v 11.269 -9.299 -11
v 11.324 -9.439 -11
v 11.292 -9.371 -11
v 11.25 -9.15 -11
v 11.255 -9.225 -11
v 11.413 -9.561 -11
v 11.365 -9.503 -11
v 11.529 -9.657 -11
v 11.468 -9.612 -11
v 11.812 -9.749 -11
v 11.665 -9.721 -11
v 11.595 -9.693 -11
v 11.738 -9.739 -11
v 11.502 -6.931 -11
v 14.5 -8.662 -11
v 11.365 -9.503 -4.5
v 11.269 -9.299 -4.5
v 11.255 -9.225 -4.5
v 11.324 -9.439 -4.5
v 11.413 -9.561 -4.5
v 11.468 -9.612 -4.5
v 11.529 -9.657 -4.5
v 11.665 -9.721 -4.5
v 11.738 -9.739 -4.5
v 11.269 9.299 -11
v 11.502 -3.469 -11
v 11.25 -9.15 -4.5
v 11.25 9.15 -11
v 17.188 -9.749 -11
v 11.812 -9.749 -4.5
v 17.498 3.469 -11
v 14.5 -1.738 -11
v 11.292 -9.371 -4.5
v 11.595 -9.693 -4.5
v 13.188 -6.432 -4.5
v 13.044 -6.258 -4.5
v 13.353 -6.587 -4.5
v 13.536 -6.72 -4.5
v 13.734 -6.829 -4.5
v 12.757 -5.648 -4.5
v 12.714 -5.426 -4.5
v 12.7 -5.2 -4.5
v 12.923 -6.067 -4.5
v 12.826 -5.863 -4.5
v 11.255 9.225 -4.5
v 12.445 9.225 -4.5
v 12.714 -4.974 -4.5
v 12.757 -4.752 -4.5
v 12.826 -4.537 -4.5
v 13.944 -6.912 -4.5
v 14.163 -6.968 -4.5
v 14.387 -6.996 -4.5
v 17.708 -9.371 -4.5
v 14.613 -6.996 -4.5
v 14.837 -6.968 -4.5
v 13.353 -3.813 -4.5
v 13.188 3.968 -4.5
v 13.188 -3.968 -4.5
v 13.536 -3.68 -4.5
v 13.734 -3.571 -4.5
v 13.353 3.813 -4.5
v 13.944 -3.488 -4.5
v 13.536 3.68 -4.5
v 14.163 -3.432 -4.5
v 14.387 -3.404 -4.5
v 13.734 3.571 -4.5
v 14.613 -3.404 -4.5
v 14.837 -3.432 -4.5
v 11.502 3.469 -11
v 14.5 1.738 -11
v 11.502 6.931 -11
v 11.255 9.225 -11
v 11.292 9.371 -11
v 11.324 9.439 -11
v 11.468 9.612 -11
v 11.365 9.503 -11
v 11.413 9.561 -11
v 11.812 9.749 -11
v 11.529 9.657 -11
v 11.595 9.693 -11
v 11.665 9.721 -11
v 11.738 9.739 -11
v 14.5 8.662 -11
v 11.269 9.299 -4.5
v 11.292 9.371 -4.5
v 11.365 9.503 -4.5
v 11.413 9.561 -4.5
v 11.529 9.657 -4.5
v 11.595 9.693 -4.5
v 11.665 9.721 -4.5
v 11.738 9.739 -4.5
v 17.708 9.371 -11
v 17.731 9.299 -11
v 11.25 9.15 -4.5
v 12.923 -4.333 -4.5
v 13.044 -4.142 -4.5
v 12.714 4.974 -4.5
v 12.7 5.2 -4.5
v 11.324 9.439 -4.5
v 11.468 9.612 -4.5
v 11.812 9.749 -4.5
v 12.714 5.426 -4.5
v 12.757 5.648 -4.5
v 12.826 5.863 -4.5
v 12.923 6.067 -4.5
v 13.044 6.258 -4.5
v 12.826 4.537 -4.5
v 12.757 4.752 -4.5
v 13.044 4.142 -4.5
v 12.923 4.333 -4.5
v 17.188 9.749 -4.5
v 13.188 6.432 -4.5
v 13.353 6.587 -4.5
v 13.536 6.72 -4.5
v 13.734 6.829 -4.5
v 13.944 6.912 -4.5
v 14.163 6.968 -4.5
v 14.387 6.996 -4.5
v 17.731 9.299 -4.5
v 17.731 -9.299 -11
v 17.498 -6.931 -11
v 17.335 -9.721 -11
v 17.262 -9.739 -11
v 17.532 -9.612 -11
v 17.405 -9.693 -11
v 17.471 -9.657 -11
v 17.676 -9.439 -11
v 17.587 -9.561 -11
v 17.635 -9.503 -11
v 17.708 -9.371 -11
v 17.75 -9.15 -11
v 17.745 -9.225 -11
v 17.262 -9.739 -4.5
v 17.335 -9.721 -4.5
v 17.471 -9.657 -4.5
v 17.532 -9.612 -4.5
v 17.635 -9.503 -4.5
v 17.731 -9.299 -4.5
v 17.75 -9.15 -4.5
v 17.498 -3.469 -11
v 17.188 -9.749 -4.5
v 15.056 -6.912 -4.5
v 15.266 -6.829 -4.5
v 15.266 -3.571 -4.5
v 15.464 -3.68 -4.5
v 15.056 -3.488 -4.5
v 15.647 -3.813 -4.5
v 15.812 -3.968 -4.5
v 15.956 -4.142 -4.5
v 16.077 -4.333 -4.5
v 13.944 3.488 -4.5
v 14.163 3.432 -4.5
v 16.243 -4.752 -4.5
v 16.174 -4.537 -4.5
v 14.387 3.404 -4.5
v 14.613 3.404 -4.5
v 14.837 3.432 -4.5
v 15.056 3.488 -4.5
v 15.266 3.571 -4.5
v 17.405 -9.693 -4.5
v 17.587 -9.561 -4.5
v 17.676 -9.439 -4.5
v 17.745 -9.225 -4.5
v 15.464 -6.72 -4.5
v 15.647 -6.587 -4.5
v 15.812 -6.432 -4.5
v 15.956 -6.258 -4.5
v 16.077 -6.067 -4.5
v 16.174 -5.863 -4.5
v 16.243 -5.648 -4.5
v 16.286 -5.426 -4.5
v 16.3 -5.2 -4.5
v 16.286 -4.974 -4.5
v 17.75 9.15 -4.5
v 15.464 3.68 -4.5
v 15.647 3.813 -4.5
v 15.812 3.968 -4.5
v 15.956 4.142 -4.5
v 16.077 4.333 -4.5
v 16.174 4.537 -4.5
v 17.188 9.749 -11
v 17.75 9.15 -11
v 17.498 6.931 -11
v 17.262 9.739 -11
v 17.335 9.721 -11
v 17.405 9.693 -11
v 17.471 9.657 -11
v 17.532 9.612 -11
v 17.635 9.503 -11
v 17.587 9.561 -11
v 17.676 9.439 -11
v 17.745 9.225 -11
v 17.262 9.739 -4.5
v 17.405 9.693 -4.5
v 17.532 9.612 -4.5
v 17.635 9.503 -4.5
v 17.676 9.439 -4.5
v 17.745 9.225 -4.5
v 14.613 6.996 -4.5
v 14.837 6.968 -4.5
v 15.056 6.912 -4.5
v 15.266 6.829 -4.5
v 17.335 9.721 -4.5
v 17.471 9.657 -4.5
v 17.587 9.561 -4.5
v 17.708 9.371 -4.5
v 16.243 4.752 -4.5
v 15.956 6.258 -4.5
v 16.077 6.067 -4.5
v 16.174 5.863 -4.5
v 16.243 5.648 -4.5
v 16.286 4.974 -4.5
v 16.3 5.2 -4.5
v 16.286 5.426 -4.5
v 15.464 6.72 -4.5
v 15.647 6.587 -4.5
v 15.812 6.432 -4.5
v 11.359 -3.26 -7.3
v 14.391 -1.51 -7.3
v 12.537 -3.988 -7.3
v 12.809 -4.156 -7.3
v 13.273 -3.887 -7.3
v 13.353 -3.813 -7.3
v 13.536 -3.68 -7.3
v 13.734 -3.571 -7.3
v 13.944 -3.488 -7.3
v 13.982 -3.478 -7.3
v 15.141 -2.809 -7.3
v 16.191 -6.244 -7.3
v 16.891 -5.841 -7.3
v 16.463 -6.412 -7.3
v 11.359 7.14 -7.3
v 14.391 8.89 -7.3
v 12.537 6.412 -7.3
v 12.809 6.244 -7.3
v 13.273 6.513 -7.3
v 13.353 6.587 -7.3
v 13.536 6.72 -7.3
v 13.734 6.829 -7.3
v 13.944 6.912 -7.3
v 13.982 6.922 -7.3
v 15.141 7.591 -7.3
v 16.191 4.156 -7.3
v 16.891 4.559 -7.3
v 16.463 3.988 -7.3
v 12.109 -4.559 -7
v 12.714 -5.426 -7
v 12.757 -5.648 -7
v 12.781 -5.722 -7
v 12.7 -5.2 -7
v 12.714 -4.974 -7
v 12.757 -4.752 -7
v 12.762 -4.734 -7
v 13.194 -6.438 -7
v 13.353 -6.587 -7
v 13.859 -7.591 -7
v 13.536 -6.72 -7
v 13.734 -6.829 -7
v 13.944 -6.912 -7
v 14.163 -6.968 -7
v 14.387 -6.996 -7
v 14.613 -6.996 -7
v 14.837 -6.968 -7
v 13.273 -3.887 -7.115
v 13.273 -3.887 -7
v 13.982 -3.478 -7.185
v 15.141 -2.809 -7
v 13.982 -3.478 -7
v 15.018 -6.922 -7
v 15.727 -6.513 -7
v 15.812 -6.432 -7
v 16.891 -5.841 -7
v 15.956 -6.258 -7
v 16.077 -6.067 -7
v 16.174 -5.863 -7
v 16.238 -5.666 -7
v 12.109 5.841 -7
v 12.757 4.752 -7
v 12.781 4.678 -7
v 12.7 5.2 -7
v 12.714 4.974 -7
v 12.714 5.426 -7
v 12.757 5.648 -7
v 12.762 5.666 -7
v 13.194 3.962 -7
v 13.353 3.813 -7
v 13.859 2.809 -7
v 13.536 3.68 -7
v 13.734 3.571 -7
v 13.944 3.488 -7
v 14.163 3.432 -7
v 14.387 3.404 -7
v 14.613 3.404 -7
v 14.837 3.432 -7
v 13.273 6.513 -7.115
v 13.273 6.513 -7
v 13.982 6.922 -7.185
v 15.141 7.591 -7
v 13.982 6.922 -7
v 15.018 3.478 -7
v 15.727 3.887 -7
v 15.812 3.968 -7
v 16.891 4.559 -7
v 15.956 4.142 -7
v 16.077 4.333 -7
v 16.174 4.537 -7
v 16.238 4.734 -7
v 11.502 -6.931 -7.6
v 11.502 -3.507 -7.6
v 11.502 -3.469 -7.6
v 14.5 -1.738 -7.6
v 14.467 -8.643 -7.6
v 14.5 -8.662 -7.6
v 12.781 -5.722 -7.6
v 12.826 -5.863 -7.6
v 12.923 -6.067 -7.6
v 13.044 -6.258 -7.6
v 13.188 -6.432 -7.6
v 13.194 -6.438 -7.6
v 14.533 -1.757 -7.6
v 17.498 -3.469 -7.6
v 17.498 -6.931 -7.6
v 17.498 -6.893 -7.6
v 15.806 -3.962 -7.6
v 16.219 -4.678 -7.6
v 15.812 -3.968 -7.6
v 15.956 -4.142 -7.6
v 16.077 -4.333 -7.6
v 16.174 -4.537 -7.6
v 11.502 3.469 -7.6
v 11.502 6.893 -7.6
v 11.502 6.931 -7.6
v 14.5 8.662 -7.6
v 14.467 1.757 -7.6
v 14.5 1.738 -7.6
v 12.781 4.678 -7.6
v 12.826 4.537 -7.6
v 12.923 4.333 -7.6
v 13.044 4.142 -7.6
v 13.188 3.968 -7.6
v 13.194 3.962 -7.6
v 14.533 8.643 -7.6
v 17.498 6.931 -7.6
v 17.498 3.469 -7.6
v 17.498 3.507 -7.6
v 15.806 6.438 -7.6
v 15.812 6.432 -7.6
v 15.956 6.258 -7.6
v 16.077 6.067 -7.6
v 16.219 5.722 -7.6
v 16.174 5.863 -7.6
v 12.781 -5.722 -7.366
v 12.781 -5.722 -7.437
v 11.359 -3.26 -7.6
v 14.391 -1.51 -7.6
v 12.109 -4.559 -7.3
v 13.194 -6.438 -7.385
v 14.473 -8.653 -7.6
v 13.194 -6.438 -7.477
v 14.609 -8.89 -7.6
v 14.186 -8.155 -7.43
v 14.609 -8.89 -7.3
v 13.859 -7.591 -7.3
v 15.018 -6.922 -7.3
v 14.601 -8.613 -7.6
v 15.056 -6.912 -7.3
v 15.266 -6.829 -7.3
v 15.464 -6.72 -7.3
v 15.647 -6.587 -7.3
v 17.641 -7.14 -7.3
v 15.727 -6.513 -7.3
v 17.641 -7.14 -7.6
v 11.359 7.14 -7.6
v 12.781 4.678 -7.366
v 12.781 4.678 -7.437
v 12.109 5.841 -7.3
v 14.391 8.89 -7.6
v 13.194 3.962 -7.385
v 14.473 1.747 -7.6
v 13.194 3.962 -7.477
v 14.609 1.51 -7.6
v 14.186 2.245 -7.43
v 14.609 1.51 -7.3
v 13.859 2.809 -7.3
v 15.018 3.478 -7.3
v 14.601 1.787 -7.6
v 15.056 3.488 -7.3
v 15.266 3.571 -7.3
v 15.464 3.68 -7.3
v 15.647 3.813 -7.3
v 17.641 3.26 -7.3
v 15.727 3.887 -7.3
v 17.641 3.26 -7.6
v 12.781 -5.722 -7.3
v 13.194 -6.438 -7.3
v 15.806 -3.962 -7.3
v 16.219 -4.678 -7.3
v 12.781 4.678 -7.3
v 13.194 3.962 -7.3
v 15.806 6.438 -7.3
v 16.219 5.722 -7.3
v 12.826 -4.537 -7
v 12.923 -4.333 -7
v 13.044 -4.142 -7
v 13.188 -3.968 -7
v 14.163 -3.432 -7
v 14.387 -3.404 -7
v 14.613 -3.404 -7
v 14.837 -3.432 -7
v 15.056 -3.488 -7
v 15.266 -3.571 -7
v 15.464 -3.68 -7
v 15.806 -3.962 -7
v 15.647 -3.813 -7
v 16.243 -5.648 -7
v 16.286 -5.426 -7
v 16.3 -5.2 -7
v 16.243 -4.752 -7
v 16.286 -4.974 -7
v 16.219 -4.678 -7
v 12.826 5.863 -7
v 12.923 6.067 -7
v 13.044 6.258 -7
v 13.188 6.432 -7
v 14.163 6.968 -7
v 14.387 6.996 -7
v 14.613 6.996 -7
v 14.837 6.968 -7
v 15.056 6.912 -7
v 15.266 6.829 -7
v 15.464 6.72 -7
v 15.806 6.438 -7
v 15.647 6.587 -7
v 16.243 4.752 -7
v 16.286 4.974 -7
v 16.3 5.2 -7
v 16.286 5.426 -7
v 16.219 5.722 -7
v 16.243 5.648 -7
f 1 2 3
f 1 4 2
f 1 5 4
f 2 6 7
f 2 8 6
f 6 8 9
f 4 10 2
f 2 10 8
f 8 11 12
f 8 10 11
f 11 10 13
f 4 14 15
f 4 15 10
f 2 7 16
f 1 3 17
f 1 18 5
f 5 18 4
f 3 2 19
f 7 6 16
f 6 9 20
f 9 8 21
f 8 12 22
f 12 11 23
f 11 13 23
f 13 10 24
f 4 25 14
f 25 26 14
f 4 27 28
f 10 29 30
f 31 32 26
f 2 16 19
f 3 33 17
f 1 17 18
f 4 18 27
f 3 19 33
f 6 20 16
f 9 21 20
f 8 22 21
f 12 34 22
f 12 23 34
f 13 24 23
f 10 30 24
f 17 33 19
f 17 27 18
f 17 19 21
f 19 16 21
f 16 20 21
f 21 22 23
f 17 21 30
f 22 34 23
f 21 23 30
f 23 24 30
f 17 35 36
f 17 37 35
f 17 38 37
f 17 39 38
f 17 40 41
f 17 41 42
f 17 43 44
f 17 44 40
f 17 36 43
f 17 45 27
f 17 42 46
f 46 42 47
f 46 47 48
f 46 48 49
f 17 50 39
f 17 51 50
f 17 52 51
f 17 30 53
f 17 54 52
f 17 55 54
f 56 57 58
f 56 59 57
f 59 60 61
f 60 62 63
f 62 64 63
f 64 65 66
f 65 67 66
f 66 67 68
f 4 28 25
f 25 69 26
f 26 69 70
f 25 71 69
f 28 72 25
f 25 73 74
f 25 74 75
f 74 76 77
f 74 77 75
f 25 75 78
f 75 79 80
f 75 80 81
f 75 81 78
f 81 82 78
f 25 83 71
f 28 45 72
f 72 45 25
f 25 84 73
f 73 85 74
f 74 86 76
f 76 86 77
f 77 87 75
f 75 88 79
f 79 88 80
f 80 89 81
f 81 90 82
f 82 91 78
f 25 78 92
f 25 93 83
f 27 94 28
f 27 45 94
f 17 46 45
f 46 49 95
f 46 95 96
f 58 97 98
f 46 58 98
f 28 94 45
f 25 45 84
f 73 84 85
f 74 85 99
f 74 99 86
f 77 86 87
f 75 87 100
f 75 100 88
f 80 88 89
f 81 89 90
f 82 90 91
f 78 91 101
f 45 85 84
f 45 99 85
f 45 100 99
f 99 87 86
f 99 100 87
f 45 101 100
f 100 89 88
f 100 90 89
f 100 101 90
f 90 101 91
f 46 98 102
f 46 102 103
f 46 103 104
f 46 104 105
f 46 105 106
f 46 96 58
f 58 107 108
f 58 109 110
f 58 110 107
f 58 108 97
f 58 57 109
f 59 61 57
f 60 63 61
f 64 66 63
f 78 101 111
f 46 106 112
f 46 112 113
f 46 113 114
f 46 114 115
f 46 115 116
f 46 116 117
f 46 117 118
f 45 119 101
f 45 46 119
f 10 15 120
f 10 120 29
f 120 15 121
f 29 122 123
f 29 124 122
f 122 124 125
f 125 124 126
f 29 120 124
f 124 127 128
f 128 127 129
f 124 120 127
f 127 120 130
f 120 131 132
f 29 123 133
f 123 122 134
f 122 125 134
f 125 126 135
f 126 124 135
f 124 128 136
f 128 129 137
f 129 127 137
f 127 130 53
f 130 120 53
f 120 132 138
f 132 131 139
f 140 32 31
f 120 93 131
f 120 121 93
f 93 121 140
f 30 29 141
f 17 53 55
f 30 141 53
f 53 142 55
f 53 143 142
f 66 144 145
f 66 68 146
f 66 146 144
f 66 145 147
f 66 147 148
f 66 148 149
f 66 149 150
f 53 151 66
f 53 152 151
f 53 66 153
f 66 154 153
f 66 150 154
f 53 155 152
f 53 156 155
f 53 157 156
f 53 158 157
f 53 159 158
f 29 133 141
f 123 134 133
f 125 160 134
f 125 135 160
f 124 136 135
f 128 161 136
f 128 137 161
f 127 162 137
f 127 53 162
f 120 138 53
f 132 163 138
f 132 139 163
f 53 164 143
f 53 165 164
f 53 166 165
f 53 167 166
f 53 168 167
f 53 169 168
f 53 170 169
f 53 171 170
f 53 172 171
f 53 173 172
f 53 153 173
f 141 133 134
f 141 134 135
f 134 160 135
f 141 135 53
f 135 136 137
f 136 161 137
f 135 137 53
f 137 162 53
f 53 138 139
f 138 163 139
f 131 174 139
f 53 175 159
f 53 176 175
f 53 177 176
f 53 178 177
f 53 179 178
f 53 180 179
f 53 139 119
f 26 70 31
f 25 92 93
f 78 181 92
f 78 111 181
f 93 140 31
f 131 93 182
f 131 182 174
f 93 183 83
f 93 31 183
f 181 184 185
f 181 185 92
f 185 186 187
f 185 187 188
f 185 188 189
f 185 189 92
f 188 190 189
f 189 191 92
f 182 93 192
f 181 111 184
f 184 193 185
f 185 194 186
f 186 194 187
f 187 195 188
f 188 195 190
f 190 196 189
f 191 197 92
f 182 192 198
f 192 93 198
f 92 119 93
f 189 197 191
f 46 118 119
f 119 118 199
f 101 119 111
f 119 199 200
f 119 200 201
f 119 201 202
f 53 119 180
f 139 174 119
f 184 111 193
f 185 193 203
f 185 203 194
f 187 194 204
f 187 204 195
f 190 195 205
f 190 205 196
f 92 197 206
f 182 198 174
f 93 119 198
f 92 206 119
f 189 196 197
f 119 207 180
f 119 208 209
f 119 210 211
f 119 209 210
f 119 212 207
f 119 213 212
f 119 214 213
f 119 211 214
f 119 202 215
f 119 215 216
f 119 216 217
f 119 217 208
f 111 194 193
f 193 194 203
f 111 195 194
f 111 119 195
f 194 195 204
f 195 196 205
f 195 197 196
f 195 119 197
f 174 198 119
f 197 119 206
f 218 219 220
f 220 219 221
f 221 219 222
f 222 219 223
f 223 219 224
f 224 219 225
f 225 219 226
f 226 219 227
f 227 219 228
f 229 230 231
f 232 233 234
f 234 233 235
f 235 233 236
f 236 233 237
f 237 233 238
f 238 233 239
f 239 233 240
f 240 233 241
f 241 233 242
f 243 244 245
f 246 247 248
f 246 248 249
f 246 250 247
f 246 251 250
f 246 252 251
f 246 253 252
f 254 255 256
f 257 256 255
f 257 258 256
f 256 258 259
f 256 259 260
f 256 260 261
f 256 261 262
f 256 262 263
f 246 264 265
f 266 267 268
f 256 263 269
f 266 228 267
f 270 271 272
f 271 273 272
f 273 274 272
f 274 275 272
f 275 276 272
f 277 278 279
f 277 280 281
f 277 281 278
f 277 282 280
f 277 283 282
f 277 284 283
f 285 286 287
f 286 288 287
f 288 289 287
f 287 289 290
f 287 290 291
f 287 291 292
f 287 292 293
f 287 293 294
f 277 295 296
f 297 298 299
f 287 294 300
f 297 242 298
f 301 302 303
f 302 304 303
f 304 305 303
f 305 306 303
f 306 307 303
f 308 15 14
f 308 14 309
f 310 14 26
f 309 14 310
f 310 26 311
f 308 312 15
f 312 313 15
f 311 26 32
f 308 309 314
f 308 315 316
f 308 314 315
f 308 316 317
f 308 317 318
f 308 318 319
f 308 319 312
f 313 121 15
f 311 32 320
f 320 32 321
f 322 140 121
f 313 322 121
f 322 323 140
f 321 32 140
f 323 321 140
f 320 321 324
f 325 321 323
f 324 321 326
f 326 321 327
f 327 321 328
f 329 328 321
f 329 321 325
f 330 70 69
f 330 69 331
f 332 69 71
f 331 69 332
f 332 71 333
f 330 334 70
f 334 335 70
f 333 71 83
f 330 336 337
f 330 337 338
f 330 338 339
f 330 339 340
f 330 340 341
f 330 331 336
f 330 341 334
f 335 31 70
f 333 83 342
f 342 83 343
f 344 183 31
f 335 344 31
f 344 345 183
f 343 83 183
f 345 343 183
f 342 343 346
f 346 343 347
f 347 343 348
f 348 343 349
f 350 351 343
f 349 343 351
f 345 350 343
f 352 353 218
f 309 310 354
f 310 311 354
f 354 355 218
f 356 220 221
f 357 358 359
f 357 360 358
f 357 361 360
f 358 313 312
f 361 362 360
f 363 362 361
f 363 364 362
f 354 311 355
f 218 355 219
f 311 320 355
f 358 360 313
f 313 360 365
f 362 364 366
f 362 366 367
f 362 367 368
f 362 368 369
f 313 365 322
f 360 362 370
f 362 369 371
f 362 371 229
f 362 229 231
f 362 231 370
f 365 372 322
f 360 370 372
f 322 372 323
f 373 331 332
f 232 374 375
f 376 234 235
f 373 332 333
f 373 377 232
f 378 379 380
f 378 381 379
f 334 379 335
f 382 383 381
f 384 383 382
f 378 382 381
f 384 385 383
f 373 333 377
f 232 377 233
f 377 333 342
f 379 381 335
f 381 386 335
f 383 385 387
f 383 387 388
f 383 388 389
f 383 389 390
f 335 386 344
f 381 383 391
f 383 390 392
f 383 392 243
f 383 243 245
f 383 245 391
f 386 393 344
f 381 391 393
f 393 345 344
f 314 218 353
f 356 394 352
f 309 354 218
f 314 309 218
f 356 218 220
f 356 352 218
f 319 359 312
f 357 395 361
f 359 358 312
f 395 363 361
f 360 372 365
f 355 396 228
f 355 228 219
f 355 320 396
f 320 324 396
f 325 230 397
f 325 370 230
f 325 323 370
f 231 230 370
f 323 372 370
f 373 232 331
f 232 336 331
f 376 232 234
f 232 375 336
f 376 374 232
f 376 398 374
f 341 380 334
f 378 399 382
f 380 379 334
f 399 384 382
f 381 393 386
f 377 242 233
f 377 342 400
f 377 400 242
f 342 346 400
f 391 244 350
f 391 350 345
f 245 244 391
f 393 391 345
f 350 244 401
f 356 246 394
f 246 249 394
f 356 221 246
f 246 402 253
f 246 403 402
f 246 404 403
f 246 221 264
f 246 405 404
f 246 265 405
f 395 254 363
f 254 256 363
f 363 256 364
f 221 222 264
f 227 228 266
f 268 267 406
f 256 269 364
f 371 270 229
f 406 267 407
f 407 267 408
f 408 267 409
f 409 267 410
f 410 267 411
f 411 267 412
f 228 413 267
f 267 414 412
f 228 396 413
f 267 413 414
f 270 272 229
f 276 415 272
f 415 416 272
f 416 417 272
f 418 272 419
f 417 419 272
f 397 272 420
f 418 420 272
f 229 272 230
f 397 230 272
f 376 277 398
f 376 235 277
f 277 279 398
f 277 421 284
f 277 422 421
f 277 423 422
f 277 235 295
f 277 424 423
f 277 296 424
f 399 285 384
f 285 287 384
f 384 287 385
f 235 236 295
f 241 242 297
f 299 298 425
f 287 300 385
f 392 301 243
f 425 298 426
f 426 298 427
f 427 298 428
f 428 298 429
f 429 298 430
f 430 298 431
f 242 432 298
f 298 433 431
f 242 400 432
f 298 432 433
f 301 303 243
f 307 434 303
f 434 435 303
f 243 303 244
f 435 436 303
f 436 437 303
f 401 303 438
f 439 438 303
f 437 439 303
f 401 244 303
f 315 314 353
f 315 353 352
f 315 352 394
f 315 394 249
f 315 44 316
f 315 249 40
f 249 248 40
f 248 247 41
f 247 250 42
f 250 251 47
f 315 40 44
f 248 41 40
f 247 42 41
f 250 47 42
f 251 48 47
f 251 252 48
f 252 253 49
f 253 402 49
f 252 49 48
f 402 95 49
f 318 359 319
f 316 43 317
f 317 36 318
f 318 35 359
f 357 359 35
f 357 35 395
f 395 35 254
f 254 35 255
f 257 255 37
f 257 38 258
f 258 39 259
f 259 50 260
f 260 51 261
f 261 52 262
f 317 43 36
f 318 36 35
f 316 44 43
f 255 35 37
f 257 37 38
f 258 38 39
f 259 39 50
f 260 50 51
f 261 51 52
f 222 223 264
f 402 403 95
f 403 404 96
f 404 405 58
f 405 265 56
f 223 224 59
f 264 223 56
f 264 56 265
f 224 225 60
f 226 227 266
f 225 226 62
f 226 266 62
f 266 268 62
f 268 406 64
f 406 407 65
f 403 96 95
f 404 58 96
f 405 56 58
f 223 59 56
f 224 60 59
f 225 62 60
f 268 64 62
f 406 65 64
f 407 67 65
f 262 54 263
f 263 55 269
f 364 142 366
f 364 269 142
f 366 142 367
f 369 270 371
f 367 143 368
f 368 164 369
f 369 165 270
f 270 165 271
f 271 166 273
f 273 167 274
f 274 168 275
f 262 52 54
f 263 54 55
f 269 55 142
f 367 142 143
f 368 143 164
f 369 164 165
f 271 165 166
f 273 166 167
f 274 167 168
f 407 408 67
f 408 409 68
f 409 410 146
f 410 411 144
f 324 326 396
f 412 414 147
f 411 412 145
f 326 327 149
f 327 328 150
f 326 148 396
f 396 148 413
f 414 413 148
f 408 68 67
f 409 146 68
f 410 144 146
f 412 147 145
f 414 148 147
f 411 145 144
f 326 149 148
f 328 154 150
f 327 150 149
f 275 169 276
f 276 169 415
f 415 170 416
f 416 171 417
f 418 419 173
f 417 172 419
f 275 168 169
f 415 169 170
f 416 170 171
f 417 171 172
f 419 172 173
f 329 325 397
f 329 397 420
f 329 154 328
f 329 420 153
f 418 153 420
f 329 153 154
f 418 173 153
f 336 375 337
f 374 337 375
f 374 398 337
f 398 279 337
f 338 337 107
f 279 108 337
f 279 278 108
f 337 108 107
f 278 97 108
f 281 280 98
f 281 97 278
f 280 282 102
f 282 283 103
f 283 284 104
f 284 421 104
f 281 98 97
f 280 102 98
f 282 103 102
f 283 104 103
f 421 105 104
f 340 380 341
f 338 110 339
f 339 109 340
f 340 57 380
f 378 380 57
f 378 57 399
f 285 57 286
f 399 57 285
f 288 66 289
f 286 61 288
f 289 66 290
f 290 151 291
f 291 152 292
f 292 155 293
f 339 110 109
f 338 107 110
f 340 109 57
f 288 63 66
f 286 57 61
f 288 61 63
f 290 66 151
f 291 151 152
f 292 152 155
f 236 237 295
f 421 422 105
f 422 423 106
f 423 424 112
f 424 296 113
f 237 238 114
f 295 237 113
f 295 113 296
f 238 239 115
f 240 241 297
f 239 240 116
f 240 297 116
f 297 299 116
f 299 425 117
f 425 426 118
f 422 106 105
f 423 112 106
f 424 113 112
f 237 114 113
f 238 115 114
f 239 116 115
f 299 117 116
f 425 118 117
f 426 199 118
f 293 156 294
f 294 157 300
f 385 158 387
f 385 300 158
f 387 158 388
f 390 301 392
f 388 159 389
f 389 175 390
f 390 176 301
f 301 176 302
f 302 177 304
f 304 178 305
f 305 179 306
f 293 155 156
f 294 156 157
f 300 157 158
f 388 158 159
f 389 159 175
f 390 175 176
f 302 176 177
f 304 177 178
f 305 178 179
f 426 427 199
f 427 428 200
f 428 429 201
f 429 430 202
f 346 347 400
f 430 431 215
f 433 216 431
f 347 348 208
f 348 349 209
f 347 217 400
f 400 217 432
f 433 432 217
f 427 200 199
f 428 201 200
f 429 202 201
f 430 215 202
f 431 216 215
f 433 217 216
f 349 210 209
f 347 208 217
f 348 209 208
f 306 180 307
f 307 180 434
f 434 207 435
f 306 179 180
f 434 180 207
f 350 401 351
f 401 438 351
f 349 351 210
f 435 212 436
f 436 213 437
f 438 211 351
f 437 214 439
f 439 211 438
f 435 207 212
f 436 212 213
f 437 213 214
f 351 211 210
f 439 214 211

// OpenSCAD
$fn = 50;

difference() {
	union() {
		translate(v = [14.5, 0, -11.0]) {
			hull() {
				translate(v = [-2.65, 9.15, 0]) {
					cylinder(h = 6.5, r = 0.6);
				}
				translate(v = [2.65, 9.15, 0]) {
					cylinder(h = 6.5, r = 0.6);
				}
				translate(v = [-2.65, -9.15, 0]) {
					cylinder(h = 6.5, r = 0.6);
				}
				translate(v = [2.65, -9.15, 0]) {
					cylinder(h = 6.5, r = 0.6);
				}
			}
		}
	}
	union() {
		translate(v = [14.5, -5.2, -7.6]) {
			rotate(a = [180, 0, 30]) {
				difference() {
					union() {
						translate(v = [-1.75, -3.25, -0.3]) {
							cube(size = [3.5, 6.5, 0.3]);
						}
						translate(v = [-1.75, -1.75, -0.6]) {
							cube(size = [3.5, 3.5, 0.3]);
						}
						translate(v = [-1.75, -3.25, 53.4]) {
							cube(size = [3.5, 6.5, 0.3]);
						}
						translate(v = [-1.75, -1.75, 53.699999999999996]) {
							cube(size = [3.5, 3.5, 0.3]);
						}
						linear_extrude(height = 103.4) {
							polygon(points = [[3.4619999999999997, 0.0], [1.7310000000000003, 2.9981799479017264], [-1.7309999999999992, 2.9981799479017264], [-3.4619999999999997, 4.2397272186481365e-16], [-1.7310000000000014, -2.998179947901726], [1.7309999999999977, -2.9981799479017277]]);
						}
						translate(v = [-1.75, -3.25, -0.3]) {
							cube(size = [3.5, 6.5, 0.3]);
						}
						translate(v = [-1.75, -1.75, -0.6]) {
							cube(size = [3.5, 3.5, 0.3]);
						}
						translate(v = [-1.75, -3.25, 103.4]) {
							cube(size = [3.5, 6.5, 0.3]);
						}
						translate(v = [-1.75, -1.75, 103.7]) {
							cube(size = [3.5, 3.5, 0.3]);
						}
						translate(v = [-1.75, -3.25, -0.3]) {
							cube(size = [3.5, 6.5, 0.3]);
						}
						translate(v = [-1.75, -1.75, -0.6]) {
							cube(size = [3.5, 3.5, 0.3]);
						}
						translate(v = [-1.75, -3.25, 153.4]) {
							cube(size = [3.5, 6.5, 0.3]);
						}
						translate(v = [-1.75, -1.75, 153.70000000000002]) {
							cube(size = [3.5, 3.5, 0.3]);
						}
					}
					union();
				}
			}
		}
		translate(v = [14.5, 5.2, -7.6]) {
			rotate(a = [180, 0, 30]) {
				difference() {
					union() {
						translate(v = [-1.75, -3.25, -0.3]) {
							cube(size = [3.5, 6.5, 0.3]);
						}
						translate(v = [-1.75, -1.75, -0.6]) {
							cube(size = [3.5, 3.5, 0.3]);
						}
						translate(v = [-1.75, -3.25, 53.4]) {
							cube(size = [3.5, 6.5, 0.3]);
						}
						translate(v = [-1.75, -1.75, 53.699999999999996]) {
							cube(size = [3.5, 3.5, 0.3]);
						}
						linear_extrude(height = 103.4) {
							polygon(points = [[3.4619999999999997, 0.0], [1.7310000000000003, 2.9981799479017264], [-1.7309999999999992, 2.9981799479017264], [-3.4619999999999997, 4.2397272186481365e-16], [-1.7310000000000014, -2.998179947901726], [1.7309999999999977, -2.9981799479017277]]);
						}
						translate(v = [-1.75, -3.25, -0.3]) {
							cube(size = [3.5, 6.5, 0.3]);
						}
						translate(v = [-1.75, -1.75, -0.6]) {
							cube(size = [3.5, 3.5, 0.3]);
						}
						translate(v = [-1.75, -3.25, 103.4]) {
							cube(size = [3.5, 6.5, 0.3]);
						}
						translate(v = [-1.75, -1.75, 103.7]) {
							cube(size = [3.5, 3.5, 0.3]);
						}
						translate(v = [-1.75, -3.25, -0.3]) {
							cube(size = [3.5, 6.5, 0.3]);
						}
						translate(v = [-1.75, -1.75, -0.6]) {
							cube(size = [3.5, 3.5, 0.3]);
						}
						translate(v = [-1.75, -3.25, 153.4]) {
							cube(size = [3.5, 6.5, 0.3]);
						}
						translate(v = [-1.75, -1.75, 153.70000000000002]) {
							cube(size = [3.5, 3.5, 0.3]);
						}
					}
					union();
				}
			}
		}
		translate(v = [14.5, -5.2, -12.0]) {
			cylinder(h = 8.5, r = 1.8);
		}
		translate(v = [14.5, 5.2, -12.0]) {
			cylinder(h = 8.5, r = 1.8);
		}
	}
}
